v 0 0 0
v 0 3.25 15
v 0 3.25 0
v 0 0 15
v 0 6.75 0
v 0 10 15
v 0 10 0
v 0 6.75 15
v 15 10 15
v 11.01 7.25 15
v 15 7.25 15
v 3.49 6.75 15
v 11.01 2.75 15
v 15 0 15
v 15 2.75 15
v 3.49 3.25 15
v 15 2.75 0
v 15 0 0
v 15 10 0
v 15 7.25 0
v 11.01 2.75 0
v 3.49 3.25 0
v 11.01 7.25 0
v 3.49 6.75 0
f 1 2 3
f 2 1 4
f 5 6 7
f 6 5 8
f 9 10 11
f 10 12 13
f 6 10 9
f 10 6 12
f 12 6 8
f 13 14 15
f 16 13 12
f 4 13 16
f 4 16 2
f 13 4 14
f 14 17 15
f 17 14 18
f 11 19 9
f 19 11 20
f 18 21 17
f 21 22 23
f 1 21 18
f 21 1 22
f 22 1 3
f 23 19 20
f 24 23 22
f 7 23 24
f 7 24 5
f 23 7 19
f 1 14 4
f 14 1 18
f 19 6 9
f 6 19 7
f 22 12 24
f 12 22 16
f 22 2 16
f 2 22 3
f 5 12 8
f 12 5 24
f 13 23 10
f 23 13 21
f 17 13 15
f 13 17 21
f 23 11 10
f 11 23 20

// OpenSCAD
difference() {
    cube([15, 10, 15]);
    translate([-0.01, 3.25, -0.01]) cube([3.5, 3.5, 16]);
    translate([11.01, 2.75, -0.01]) cube([4, 4.5, 16]);   
}
